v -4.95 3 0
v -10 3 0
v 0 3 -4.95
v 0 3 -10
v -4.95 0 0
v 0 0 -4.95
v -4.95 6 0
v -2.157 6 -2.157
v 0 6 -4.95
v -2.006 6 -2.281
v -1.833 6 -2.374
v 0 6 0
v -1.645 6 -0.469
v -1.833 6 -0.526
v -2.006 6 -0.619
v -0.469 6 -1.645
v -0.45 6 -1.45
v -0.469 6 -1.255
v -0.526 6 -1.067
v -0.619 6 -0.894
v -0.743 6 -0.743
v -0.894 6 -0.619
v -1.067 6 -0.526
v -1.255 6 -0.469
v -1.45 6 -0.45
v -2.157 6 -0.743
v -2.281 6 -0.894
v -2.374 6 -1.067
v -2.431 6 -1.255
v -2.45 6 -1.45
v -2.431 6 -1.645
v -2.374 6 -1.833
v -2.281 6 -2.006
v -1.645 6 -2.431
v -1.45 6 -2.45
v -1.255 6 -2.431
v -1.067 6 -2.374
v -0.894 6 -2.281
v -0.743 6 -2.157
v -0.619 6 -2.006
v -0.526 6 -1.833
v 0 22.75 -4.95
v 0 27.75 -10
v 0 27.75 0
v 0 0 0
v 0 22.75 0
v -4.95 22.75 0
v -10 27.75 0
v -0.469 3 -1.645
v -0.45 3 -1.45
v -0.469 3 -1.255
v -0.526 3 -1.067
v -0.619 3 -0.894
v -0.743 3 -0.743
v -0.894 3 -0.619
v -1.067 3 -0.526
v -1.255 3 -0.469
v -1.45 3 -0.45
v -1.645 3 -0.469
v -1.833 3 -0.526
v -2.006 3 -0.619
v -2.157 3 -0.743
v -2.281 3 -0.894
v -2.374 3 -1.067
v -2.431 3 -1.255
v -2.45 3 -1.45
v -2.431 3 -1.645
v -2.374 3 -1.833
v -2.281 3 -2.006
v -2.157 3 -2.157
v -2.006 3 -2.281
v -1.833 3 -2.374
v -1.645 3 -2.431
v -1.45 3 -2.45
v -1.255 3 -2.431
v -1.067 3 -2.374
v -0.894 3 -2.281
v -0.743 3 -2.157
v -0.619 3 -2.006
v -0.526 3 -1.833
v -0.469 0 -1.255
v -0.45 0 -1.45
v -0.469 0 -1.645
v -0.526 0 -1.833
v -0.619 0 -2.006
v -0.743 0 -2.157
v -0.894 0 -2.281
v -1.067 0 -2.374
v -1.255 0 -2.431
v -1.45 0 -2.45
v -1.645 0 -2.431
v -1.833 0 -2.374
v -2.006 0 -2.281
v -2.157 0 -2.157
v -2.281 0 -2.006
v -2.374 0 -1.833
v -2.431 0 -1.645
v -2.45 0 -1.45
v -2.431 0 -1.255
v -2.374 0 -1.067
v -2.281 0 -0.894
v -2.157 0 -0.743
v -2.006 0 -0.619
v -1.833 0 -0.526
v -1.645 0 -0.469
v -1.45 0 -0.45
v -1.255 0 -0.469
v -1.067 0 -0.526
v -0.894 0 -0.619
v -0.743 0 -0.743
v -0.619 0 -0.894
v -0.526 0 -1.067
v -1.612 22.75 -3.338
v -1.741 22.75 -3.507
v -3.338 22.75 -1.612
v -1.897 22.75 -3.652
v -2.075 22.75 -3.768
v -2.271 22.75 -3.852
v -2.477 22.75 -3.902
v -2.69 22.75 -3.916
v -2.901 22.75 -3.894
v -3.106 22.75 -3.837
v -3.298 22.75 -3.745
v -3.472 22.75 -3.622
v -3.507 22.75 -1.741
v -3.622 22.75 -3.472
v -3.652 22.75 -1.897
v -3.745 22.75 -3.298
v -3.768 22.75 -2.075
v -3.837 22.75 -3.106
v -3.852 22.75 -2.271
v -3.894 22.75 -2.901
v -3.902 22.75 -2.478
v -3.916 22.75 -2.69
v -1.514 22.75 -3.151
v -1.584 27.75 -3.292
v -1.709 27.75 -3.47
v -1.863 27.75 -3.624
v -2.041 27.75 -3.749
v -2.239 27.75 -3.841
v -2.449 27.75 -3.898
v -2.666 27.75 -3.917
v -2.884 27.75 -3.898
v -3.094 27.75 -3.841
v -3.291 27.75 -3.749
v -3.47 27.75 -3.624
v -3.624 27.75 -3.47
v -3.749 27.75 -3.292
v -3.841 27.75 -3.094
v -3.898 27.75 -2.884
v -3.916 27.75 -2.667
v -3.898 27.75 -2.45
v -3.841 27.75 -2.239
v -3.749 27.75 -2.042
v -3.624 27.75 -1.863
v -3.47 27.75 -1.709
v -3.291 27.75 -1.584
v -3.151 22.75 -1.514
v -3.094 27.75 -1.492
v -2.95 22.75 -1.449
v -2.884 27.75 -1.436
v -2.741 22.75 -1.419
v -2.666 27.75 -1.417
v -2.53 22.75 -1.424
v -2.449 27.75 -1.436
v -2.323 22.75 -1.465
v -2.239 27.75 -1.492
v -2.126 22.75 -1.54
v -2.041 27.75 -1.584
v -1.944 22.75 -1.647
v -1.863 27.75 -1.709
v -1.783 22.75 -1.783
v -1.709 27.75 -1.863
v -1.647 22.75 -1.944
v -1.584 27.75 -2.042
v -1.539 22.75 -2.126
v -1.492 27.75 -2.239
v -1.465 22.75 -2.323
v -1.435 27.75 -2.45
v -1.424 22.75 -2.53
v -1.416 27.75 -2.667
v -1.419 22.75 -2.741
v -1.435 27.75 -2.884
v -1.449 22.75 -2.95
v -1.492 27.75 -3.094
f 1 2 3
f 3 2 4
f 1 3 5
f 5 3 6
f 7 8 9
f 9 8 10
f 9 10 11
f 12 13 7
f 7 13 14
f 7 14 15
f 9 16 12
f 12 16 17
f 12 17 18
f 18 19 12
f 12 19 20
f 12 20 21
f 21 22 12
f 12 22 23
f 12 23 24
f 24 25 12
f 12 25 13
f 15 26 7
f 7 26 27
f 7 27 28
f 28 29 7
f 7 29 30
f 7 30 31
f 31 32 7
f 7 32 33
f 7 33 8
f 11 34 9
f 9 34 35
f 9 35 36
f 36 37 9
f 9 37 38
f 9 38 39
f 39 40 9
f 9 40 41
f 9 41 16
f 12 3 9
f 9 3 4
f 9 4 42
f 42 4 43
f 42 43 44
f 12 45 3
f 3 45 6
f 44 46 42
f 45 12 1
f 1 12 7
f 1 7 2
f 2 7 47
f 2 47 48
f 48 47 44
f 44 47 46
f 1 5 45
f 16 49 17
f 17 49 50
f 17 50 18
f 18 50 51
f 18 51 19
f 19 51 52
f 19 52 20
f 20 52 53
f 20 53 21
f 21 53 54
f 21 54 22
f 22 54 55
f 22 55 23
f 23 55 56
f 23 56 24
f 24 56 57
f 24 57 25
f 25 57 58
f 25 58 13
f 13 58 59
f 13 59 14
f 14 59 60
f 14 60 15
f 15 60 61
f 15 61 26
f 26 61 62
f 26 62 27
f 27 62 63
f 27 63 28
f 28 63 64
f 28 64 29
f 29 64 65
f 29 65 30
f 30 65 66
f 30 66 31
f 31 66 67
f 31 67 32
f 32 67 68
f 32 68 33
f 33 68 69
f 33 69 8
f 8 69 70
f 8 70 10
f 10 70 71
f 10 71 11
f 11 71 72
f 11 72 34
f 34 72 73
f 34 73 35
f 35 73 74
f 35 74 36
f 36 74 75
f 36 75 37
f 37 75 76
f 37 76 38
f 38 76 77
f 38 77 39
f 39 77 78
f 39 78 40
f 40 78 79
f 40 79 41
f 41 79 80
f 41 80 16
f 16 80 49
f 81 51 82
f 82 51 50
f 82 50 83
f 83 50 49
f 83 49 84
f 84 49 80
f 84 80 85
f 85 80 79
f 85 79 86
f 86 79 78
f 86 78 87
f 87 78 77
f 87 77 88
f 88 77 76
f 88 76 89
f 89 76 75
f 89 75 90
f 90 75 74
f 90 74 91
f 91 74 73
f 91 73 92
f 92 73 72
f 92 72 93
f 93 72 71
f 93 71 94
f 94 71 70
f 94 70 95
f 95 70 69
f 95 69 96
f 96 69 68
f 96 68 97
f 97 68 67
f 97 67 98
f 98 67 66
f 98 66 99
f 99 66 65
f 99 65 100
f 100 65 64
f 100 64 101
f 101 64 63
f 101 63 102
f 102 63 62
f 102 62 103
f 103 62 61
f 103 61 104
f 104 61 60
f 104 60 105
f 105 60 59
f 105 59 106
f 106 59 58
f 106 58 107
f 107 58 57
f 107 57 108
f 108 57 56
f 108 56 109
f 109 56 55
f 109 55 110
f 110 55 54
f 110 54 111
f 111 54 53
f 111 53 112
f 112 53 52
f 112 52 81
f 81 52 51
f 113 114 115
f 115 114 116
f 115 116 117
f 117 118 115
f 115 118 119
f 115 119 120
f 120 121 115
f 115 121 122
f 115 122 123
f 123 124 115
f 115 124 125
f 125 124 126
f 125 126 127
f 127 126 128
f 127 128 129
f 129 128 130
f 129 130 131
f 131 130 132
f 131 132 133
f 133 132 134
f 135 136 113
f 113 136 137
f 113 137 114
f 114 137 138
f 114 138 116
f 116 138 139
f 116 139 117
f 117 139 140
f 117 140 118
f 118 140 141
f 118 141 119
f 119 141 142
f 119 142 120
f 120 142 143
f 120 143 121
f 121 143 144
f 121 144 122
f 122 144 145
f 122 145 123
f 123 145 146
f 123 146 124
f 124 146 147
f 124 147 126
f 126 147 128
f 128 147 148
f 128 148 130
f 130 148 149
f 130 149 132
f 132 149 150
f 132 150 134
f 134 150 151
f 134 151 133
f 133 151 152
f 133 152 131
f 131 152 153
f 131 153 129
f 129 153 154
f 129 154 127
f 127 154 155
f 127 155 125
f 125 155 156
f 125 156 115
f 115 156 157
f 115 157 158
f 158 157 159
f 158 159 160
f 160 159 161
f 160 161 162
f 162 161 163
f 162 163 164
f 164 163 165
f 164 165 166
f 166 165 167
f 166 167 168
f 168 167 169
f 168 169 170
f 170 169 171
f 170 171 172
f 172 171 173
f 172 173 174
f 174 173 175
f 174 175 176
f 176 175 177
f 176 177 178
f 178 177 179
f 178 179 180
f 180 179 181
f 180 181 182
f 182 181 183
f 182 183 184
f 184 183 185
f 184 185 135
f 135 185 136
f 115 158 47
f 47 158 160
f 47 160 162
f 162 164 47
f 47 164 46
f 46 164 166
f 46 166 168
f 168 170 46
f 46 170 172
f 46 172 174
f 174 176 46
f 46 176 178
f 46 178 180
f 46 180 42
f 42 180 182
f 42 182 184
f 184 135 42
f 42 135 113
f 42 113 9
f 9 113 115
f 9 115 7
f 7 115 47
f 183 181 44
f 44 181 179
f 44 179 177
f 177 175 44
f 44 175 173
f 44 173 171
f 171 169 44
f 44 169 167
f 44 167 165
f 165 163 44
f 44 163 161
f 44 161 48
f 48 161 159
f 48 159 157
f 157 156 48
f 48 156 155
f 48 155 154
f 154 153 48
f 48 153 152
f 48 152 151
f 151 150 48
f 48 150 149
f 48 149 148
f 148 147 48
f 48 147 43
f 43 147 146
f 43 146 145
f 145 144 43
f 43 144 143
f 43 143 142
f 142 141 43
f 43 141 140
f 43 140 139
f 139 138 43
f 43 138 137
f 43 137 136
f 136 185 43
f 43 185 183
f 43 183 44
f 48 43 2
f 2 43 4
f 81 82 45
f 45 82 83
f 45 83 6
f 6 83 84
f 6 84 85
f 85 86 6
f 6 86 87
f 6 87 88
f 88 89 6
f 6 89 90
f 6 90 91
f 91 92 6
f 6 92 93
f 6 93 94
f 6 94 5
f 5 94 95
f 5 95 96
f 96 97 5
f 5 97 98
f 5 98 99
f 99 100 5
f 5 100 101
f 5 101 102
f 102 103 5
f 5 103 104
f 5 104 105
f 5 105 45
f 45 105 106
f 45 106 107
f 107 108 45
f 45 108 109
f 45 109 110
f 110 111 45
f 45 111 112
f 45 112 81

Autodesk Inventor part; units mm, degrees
ref_plane "YZ Plane" through (0, 0, 0) normal (1, 0, 0) x (0, 1, 0)
ref_plane "XZ Plane" through (0, 0, 0) normal (0, 1, 0) x (-1, 0, 0)
ref_plane "XY Plane" through (0, 0, 0) normal (0, 0, 1) x (1, 0, 0)
sketch "Sketch1" plane through (0, 0, 0) normal (0, 1, 0) x (-1, 0, 0)
  line L0 (0, 0) -> (4.95, 0)
  line L1 (0, 0) -> (0, -4.95)
  line L2 (0, -4.95) -> (4.95, 0)
  dimension "d0" = 4.95
  dimension "d1" = 4.95
extrude "Extrusion1" add sketch "Sketch1" along normal blind 6
sketch "Sketch2" plane through (0, 6, 0) normal (0, 1, 0) x (1, 0, 0)
  line L0 (-4.95, 0) -> (0, 0) projected
  line L1 (0, 0) -> (-10, 0)
  line L2 (0, 0) -> (0, 10)
  line L3 (0, 10) -> (-10, 0)
  dimension "d4" = 10
  dimension "d5" = 10
extrude "Extrusion2" add sketch "Sketch2" along normal blind 2
sketch "Sketch3" plane through (0, 8, 0) normal (0, 1, 0) x (1, 0, 0)
  line L0 (-10, 0) -> (-4.95, 0) projected
  line L1 (-10, 0) -> (-4.95, 0)
  line L2 (0, 4.95) -> (0, 10) projected
  line L3 (-4.95, 0) -> (0, 4.95)
  line L4 (0, 4.95) -> (0, 10)
  line L5 (0, 10) -> (-10, 0)
  point P0 (0, 0)
extrude "Extrusion3" add sketch "Sketch3" along normal blind 19.75
sketch "Sketch4" plane through (0, 27.75, 0) normal (0, 1, 0) x (1, 0, 0)
  line L0 (-4.95, 0) -> (0, 0) projected
  line L1 (-4.95, 0) -> (0, 0)
  line L2 (-4.95, 0) -> (0, 4.95) projected
  line L3 (0, 0) -> (0, 4.95) projected
extrude "Extrusion4" add sketch "Sketch4" against normal blind 5
sketch "Sketch6" plane through (0, 27.75, 0) normal (0, 1, 0) x (1, 0, 0)
  line L0 (-10, 0) -> (-4.95, 0) projected
  line L1 (-10, 0) -> (0, 10)
  line L2 (0, 10) -> (-10, 0) projected
  line L3 (-4.95, 0) -> (0, 0) projected
  line L4 (0, 0) -> (0, 10) projected
  circle A0 centre (-2.6665, 2.6666) radius 1.25
  dimension "d12" = 2.5
  dimension "d17" = 3.3
  dimension "d18" = 2.6665
  dimension "d19" = 2.6666
extrude "Extrusion5" cut sketch "Sketch6" against normal blind 5 contours A0
sketch "Sketch7" plane through (0, 8, 0) normal (0, 1, 0) x (1, 0, 0)
  line L0 (0, 4.95) -> (-4.95, 0) projected
  line L1 (0, 4.95) -> (-4.95, 0)
  line L2 (0, 4.95) -> (-4.95, 0) projected
  line L3 (0, 0) -> (0, 4.95) projected
  line L4 (-4.95, 0) -> (0, 0)
  line L5 (0, 0) -> (0, 4.95)
extrude "Extrusion6" add sketch "Sketch7" along normal blind 2
sketch "Sketch8" plane through (0, 0, 0) normal (0, -1, 0) x (1, 0, 0)
  line L0 (-4.95, 0) -> (0, 0) projected
  line L1 (0, 0) -> (0, -4.95) projected
  circle A0 centre (-1.45, -1.45) radius 1
  dimension "d20" = 1.45
  dimension "d21" = 1.45
  dimension "d22" = 2
extrude "Extrusion7" cut sketch "Sketch8" against normal up to surface (10 mm away)
sketch "Sketch9" plane through (0, 27.75, 0) normal (0, 1, 0) x (1, 0, 0)
  line L0 (0, 10) -> (10.5977, -0.5977)
  line L1 (0, 0) -> (0, 10) projected
  line L2 (0, 10) -> (-10, 0) projected
  line L3 (0, 10) -> (11.6673, -1.6673)
  line L4 (11.6673, -1.6673) -> (1.6673, -11.6673)
  line L5 (11.6673, -1.6673) -> (30.5491, -1.6673) construction
  line L6 (-10, 0) -> (1.6673, -11.6673)
  arc A0 (8.435, -4.8995) -> (4.8995, -8.435) centre (6.6673, -6.6673) ccw
  line L7 (6.6673, -6.6673) -> (4.8995, -4.8995)
  circle A1 centre (4.8995, -4.8995) radius 1.25
  dimension "d25" = 45
  dimension "d26" = 16.5
  dimension "d27" = 135
  dimension "d28" = 5
  dimension "d29" = 2.5
sketch "Sketch10" plane through (0, 10, 0) normal (0, 1, 0) x (1, 0, 0)
  line L0 (-4.95, 0) -> (0, 0) projected
  line L1 (-4.95, 0) -> (0, 4.95) projected
  line L2 (0, 0) -> (0, 4.95) projected
  circle A0 centre (-1.45, 1.45) radius 1 projected
  circle A1 centre (-1.45, 1.45) radius 1 projected
  line L3 (0, 0) -> (0, 4.95) projected
  line L4 (-4.95, 0) -> (0, 4.95) projected
  line L5 (-4.95, 0) -> (0, 0) projected
extrude "Extrusion8" cut sketch "Sketch10" against normal blind 4
sketch "Sketch11" plane through (0, 6, 0) normal (0, -1, 0) x (1, 0, 0)
  line L0 (-3.3378, -1.6122) -> (-4.95, 0) projected
  line L1 (-1.6121, -3.3379) -> (-3.3378, -1.6122) projected
  line L2 (0, -4.95) -> (-1.6121, -3.3379) projected
  line L3 (0, -4.95) -> (0, 0) projected
  line L4 (0, 0) -> (0, -10) projected
  line L5 (0, -4.95) -> (0, -10) projected
  line L6 (-10, 0) -> (-4.95, 0) projected
  line L7 (-10, 0) -> (0, 0) projected
  line L8 (0, 0) -> (-4.95, 0) projected
  circle A0 centre (-1.45, -1.45) radius 1 projected
  line L9 (0, -4.95) -> (0, 0) projected
  line L10 (0, 0) -> (-4.95, 0) projected
  line L11 (0, -4.95) -> (-4.95, 0) projected
  line L12 (0, -4.95) -> (-1.6121, -3.3379) projected
  line L13 (-1.6121, -3.3379) -> (-3.3378, -1.6122) projected
  line L14 (-3.3378, -1.6122) -> (-4.95, 0) projected
  line L15 (0, -4.95) -> (-4.95, 0) projected
  line L16 (0, -4.95) -> (0, -10) projected
  line L17 (0, 0) -> (0, -10) projected
  line L18 (0, -4.95) -> (0, 0) projected
  line L19 (0, 0) -> (-4.95, 0) projected
  line L20 (-10, 0) -> (0, 0) projected
  line L21 (-10, 0) -> (-4.95, 0) projected
  line L22 (0, -4.95) -> (-4.95, 0) projected
  line L23 (0, 0) -> (-4.95, 0) projected
  line L24 (0, -4.95) -> (0, 0) projected
  circle A1 centre (-1.45, -1.45) radius 1 projected
  line L25 (0, -10) -> (-10, 0) projected
  line L26 (0, -10) -> (-10, 0) projected
  arc A2 (-1.6121, -3.3379) -> (-3.3378, -1.6122) centre (-2.6665, -2.6666) ccw projected
  arc A3 (-3.3378, -1.6122) -> (-1.6121, -3.3379) centre (-2.6665, -2.6666) ccw projected
  line L27 (-1.6121, -3.3379) -> (-3.3378, -1.6122) projected
  arc A4 (-3.3378, -1.6122) -> (-1.6121, -3.3379) centre (-2.6665, -2.6666) ccw projected
  circle A5 centre (-2.6665, -2.6666) radius 1.25 projected
  arc A6 (-1.6121, -3.3379) -> (-3.3378, -1.6122) centre (-2.6665, -2.6666) ccw projected
  arc A7 (-3.3378, -1.6122) -> (-1.6121, -3.3379) centre (-2.6665, -2.6666) ccw projected
  circle A8 centre (-2.6665, -2.6666) radius 1.25 projected
  line L28 (0, -10) -> (-10, 0) projected
  circle A9 centre (-2.6665, -2.6666) radius 1.25 projected
  line L29 (0, 0) -> (0, -10) projected
  line L30 (0, -10) -> (-10, 0) projected
  line L31 (-10, 0) -> (0, 0) projected
  arc A10 (-1.6121, -3.3379) -> (-3.3378, -1.6122) centre (-2.6665, -2.6666) ccw projected
  line L32 (0, -4.95) -> (-1.6121, -3.3379) projected
  line L33 (0, -4.95) -> (0, 0) projected
  line L34 (0, 0) -> (-4.95, 0) projected
  line L35 (-3.3378, -1.6122) -> (-4.95, 0) projected
  line L36 (0, -4.95) -> (-4.95, 0) projected
  circle A11 centre (-1.45, -1.45) radius 1 projected
  line L37 (0, 0) -> (0, -4.95) projected
  line L38 (-4.95, 0) -> (0, 0) projected
  line L39 (0, -4.95) -> (-4.95, 0) projected
  line L40 (0, -4.95) -> (-4.95, 0) projected
  circle A12 centre (-1.45, -1.45) radius 1 projected
  circle A13 centre (-1.45, -1.45) radius 1 projected
  line L41 (0, -4.95) -> (0, 0) projected
  line L42 (0, 0) -> (0, -4.95) projected
  line L43 (0, 0) -> (-4.95, 0) projected
  line L44 (-4.95, 0) -> (0, 0) projected
  circle A14 centre (-1.45, -1.45) radius 1 projected
  line L45 (-4.95, 0) -> (0, 0) projected
  line L46 (0, -4.95) -> (-4.95, 0) projected
  line L47 (0, 0) -> (0, -4.95) projected
  line L48 (0, -4.95) -> (-4.95, 0) projected
  line L49 (-10, 0) -> (-4.95, 0) projected
  line L50 (0, -10) -> (-10, 0) projected
  line L51 (0, -4.95) -> (0, -10) projected
  line L52 (0, -10) -> (-10, 0) projected
  line L53 (0, 0) -> (0, -10) projected
  line L54 (0, -10) -> (-10, 0) projected
  line L55 (-3.3378, -1.6122) -> (-1.6121, -3.3379)
extrude "Extrusion9" add sketch "Sketch11" along normal blind 3 contours A3 L2 L4 L25 L6 L0 | L1 A3
properties part number "bracket servo_3DPrint"
